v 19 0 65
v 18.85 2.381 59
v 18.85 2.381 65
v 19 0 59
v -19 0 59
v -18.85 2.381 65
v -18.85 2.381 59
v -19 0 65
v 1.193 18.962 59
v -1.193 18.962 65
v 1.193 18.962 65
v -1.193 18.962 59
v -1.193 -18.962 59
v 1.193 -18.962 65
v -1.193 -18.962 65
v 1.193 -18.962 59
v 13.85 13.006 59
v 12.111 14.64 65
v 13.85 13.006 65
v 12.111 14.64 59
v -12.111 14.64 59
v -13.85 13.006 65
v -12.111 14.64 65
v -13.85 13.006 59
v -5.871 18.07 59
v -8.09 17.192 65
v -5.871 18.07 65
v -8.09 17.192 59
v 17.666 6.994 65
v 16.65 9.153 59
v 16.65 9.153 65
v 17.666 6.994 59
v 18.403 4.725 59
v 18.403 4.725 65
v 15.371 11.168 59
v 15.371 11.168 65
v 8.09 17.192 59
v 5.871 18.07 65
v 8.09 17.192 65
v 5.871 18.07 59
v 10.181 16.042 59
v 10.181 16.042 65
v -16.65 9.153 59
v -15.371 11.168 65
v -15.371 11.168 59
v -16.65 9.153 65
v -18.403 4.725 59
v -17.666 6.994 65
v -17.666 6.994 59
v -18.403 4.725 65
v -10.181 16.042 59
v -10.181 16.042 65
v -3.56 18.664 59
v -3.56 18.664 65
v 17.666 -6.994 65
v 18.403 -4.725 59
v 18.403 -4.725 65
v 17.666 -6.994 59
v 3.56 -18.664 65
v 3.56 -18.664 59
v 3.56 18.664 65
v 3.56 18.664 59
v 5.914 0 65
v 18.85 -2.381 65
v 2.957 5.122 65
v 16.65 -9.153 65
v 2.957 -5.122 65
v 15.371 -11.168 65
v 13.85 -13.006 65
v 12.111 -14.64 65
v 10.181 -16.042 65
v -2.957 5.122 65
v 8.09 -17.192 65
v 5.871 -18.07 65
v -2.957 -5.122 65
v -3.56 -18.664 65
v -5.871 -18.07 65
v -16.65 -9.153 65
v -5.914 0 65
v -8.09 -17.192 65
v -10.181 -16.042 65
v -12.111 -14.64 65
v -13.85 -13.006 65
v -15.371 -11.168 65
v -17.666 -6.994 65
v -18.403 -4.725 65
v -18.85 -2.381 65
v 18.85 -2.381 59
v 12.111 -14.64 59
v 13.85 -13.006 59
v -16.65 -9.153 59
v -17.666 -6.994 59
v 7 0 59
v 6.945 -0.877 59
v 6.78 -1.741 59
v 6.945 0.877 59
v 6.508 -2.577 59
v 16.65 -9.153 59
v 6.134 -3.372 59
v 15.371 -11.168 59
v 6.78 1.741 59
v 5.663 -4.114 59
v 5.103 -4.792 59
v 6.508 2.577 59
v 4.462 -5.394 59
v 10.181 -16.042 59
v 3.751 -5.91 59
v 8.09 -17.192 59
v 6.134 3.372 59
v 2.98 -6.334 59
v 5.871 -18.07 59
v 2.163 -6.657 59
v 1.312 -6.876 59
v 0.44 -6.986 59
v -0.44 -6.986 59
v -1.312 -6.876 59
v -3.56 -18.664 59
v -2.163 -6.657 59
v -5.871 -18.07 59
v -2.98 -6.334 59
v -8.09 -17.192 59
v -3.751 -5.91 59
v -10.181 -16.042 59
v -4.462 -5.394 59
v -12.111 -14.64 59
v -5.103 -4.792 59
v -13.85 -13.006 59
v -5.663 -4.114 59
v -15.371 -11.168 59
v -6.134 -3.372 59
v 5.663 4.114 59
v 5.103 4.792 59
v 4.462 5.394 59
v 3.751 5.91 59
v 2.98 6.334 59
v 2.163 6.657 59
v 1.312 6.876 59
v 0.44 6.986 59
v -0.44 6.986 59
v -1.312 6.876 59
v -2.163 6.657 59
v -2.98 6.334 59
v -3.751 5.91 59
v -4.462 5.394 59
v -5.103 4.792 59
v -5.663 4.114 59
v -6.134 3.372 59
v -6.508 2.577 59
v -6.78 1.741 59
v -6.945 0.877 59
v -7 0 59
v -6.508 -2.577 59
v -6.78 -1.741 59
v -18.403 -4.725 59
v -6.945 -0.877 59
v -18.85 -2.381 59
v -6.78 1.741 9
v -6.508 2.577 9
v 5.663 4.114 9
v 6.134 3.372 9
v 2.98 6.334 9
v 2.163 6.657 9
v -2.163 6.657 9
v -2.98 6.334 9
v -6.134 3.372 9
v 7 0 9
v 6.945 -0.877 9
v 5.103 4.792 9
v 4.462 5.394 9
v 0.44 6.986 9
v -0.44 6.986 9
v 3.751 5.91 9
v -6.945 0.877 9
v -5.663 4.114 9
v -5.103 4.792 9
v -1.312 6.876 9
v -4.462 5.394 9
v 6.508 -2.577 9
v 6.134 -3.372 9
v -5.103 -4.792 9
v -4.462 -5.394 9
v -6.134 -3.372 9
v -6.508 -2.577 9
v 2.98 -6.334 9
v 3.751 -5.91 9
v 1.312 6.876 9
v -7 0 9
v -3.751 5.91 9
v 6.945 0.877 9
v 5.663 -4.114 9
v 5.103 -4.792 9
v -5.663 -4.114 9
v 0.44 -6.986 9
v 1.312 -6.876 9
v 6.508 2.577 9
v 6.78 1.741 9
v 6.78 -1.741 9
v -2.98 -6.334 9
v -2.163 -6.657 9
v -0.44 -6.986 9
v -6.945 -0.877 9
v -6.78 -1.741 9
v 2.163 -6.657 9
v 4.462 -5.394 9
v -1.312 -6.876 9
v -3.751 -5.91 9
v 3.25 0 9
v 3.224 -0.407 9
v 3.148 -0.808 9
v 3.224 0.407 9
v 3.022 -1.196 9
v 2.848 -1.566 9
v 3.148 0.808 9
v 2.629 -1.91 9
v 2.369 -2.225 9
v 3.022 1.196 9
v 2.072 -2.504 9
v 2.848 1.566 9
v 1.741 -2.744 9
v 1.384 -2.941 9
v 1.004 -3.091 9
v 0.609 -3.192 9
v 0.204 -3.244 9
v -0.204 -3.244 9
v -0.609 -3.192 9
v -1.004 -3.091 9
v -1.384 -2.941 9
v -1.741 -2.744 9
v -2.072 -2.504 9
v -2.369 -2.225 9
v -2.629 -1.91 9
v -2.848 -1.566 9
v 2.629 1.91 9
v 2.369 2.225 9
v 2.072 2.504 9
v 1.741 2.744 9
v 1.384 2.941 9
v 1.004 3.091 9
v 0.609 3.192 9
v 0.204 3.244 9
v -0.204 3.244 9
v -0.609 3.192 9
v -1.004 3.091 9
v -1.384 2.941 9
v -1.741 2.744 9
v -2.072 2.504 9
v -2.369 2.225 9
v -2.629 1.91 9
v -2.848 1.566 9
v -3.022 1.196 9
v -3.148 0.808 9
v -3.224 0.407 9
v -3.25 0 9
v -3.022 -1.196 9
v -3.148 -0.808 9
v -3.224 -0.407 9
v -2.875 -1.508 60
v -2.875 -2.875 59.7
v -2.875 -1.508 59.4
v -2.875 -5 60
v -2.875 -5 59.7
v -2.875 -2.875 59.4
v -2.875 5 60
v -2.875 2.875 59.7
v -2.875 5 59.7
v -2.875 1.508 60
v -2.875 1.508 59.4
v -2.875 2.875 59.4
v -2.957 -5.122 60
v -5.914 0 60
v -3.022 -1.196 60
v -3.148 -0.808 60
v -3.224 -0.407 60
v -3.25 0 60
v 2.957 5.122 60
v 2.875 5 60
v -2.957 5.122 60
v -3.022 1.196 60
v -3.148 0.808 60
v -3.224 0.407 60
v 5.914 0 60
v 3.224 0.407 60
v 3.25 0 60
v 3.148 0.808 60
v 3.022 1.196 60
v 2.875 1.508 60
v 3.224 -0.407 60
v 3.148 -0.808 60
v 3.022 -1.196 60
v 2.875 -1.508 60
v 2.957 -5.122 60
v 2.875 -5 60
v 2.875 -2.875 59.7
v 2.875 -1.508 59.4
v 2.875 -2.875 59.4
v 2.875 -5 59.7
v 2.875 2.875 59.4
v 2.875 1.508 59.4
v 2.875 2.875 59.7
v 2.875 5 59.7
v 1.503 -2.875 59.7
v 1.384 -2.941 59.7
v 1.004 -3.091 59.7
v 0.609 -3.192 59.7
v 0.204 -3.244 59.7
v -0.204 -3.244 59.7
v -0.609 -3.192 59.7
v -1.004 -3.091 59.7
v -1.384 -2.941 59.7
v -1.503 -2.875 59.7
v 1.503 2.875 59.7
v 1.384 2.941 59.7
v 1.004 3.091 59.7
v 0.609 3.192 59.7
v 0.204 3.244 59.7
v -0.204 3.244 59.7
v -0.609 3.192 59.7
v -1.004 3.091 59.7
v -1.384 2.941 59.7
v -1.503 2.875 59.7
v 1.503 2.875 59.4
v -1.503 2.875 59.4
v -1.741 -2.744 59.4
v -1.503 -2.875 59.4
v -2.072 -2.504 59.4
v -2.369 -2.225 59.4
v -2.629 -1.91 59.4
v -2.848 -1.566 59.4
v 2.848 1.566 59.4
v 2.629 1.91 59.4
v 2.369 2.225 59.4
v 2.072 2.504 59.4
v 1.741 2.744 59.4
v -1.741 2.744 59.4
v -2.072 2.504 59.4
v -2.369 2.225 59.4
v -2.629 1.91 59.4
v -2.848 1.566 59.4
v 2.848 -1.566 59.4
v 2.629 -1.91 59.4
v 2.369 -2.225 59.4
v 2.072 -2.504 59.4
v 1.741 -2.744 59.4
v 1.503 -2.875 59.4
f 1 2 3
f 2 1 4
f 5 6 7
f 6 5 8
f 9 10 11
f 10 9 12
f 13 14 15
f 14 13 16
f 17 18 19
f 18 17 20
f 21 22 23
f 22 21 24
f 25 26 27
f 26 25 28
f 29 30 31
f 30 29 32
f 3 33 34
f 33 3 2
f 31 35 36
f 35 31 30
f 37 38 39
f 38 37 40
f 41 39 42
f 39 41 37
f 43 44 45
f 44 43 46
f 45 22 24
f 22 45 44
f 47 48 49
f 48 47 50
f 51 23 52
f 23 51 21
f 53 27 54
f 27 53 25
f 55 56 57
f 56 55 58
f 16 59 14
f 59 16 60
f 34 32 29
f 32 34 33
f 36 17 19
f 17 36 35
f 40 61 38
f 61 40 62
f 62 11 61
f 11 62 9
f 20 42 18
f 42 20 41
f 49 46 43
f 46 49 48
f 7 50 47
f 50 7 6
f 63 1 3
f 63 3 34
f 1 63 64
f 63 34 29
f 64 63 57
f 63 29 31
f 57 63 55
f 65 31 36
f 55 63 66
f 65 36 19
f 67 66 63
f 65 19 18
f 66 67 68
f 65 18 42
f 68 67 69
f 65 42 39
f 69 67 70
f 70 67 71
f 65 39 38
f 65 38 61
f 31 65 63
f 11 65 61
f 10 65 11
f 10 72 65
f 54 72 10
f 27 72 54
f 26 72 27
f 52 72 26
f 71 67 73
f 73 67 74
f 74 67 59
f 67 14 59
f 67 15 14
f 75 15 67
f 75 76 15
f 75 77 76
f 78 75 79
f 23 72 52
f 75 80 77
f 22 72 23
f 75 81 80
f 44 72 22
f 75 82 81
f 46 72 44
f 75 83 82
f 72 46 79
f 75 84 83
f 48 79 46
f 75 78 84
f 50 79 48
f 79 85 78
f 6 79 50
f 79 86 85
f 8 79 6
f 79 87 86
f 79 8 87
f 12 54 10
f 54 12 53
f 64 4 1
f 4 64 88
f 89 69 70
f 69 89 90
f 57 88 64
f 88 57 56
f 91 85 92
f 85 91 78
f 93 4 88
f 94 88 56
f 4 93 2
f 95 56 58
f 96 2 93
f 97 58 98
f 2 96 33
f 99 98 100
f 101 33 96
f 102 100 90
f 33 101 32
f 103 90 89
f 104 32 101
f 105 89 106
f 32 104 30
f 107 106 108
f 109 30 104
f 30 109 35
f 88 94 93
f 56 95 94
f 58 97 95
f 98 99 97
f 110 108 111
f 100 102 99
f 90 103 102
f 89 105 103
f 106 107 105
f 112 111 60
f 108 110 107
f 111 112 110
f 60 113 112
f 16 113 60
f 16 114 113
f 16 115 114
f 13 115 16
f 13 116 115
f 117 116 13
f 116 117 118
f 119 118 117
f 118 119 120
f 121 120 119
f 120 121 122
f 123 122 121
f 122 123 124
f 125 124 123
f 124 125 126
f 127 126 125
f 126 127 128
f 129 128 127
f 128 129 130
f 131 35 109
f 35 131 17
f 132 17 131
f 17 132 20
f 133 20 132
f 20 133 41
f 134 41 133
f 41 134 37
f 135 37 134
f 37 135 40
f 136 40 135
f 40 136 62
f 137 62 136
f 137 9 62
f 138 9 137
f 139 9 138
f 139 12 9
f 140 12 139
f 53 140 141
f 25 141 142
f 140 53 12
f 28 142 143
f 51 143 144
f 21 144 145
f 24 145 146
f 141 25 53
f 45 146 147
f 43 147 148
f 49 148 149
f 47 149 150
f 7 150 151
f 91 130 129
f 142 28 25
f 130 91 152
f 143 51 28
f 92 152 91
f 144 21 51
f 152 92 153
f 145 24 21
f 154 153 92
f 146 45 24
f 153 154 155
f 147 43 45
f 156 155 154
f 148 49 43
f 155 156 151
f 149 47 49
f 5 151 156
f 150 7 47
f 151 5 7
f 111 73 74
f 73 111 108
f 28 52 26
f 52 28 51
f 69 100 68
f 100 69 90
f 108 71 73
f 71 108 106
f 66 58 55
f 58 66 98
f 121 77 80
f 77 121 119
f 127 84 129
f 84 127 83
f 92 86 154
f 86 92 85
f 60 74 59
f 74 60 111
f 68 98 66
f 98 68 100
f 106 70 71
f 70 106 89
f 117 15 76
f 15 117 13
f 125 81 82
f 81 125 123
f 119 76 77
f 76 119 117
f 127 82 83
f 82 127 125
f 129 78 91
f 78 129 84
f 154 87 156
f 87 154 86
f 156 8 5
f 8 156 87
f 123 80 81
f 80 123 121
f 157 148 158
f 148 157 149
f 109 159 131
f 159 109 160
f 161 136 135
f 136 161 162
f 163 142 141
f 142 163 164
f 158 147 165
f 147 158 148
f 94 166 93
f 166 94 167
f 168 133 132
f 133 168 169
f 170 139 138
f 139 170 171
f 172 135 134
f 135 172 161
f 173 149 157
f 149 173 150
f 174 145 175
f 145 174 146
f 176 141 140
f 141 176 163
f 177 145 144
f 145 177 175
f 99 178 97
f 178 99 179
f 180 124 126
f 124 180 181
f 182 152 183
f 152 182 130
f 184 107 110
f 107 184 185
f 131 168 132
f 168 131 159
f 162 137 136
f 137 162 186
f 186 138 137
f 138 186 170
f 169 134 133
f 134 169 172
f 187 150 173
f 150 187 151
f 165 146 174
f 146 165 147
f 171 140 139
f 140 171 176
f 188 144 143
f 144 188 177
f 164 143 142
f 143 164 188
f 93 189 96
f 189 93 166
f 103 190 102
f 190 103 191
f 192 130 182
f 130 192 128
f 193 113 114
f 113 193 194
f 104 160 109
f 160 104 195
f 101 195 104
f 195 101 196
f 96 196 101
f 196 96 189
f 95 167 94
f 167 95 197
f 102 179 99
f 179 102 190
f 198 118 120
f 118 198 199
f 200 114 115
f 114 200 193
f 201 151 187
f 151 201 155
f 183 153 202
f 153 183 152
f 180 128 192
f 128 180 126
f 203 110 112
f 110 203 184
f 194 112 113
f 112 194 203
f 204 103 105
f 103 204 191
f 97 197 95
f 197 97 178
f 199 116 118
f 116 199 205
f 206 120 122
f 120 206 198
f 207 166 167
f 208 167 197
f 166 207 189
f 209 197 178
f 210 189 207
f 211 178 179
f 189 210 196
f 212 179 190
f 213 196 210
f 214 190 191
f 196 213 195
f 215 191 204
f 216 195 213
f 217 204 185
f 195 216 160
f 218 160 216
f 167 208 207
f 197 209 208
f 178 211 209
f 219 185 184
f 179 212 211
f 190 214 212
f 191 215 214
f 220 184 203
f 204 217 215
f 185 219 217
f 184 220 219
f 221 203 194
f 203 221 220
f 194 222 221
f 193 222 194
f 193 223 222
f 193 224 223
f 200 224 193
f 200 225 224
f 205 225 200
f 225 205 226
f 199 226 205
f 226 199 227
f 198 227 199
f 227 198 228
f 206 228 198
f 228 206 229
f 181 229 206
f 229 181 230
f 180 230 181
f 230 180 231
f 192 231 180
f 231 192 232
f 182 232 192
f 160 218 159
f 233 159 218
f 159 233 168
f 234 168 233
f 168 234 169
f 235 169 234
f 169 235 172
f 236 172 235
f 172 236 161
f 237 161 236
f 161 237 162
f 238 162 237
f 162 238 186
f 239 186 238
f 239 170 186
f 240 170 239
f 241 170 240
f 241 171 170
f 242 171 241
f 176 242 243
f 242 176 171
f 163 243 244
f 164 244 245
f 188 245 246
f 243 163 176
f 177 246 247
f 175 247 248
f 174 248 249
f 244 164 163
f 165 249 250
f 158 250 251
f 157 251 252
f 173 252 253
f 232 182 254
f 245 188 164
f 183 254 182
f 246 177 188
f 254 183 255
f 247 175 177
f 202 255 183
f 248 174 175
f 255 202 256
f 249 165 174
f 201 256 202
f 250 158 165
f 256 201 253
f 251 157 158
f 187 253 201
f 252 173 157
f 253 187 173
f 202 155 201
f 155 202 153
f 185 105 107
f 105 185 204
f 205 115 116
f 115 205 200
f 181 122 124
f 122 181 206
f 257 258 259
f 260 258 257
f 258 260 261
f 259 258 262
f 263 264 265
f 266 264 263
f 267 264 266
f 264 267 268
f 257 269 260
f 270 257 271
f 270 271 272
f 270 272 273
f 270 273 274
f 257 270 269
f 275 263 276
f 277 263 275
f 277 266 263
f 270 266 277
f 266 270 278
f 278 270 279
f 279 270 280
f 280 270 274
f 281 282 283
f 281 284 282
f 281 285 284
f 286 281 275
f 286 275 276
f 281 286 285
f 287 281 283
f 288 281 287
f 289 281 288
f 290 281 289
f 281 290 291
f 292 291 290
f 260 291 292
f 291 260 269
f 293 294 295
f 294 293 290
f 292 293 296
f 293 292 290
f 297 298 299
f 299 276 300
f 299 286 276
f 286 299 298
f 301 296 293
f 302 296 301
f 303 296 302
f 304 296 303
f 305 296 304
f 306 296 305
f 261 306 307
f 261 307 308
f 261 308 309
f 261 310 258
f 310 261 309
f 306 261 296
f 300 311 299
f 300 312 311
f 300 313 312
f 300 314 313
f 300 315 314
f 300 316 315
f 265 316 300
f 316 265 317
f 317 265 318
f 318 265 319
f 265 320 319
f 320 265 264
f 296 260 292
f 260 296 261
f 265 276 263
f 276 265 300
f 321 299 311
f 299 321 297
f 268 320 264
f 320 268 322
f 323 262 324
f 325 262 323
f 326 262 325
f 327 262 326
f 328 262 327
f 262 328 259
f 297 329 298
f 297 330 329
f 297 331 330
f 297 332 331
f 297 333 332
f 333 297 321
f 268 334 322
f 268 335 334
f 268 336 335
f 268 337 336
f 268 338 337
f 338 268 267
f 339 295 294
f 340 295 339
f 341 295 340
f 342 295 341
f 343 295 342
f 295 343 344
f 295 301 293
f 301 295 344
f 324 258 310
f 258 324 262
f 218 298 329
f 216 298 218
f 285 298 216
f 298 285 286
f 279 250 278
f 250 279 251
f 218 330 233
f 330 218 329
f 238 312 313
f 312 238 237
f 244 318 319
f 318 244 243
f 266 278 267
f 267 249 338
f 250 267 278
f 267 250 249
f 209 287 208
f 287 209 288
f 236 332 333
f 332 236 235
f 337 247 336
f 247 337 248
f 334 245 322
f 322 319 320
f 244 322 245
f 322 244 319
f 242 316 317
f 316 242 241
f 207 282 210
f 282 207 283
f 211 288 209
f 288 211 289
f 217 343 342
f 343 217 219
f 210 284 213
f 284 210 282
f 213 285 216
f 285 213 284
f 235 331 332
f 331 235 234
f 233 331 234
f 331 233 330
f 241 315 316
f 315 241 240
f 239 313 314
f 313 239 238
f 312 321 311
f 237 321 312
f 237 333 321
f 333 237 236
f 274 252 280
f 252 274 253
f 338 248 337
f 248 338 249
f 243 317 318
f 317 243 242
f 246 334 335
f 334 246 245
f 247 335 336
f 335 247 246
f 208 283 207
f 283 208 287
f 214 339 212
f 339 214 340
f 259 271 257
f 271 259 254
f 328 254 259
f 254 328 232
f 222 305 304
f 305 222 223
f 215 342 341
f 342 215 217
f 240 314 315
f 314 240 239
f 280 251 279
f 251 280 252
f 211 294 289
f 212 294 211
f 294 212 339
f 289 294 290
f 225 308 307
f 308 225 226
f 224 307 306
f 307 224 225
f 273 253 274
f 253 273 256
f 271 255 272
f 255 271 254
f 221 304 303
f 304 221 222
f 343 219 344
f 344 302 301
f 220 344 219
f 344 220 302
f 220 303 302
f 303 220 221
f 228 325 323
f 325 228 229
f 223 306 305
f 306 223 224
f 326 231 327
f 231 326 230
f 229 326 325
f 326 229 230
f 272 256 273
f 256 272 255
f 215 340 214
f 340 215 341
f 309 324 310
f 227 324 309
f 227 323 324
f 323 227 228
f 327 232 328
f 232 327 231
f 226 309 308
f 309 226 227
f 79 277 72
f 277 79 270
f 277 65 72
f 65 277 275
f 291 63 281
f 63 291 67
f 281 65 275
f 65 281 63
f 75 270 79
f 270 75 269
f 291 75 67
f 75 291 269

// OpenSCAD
$fn = 50;


difference() {
	union() {
		translate(v = [0, 0, 59.0000000000]) {
			cylinder(h = 6, r = 19.0000000000);
		}
		translate(v = [0, 0, 9.0000000000]) {
			cylinder(h = 56, r = 7.0000000000);
		}
	}
	union() {
		translate(v = [0, 0, 65]) {
			rotate(a = [0, 0, 0]) {
				difference() {
					union() {
						#translate(v = [-2.8750000000, -5.0000000000, -5.3000000000]) {
							cube(size = [5.7500000000, 10, 0.3000000000]);
						}
						#translate(v = [-2.8750000000, -2.8750000000, -5.6000000000]) {
							cube(size = [5.7500000000, 5.7500000000, 0.3000000000]);
						}
						#translate(v = [-2.8750000000, -5.0000000000, 0]) {
							cube(size = [5.7500000000, 10, 0.3000000000]);
						}
						#translate(v = [-2.8750000000, -2.8750000000, 0.3000000000]) {
							cube(size = [5.7500000000, 5.7500000000, 0.3000000000]);
						}
						#translate(v = [0, 0, -100.0000000000]) {
							cylinder(h = 200, r = 3.2500000000);
						}
						translate(v = [0, 0, -5]) {
							#linear_extrude(height = 5) {
								polygon(points = [[5.9142500000, 0.0000000000], [2.9571250000, 5.1218907443], [-2.9571250000, 5.1218907443], [-5.9142500000, 0.0000000000], [-2.9571250000, -5.1218907443], [2.9571250000, -5.1218907443]]);
							}
						}
						#translate(v = [-2.8750000000, -5.0000000000, -5.3000000000]) {
							cube(size = [5.7500000000, 10, 0.3000000000]);
						}
						#translate(v = [-2.8750000000, -2.8750000000, -5.6000000000]) {
							cube(size = [5.7500000000, 5.7500000000, 0.3000000000]);
						}
						#translate(v = [-2.8750000000, -5.0000000000, 0]) {
							cube(size = [5.7500000000, 10, 0.3000000000]);
						}
						#translate(v = [-2.8750000000, -2.8750000000, 0.3000000000]) {
							cube(size = [5.7500000000, 5.7500000000, 0.3000000000]);
						}
						#translate(v = [0, 0, -100.0000000000]) {
							cylinder(h = 200, r = 3.2500000000);
						}
						#translate(v = [-2.8750000000, -5.0000000000, -5.3000000000]) {
							cube(size = [5.7500000000, 10, 0.3000000000]);
						}
						#translate(v = [-2.8750000000, -2.8750000000, -5.6000000000]) {
							cube(size = [5.7500000000, 5.7500000000, 0.3000000000]);
						}
						#translate(v = [-2.8750000000, -5.0000000000, 0]) {
							cube(size = [5.7500000000, 10, 0.3000000000]);
						}
						#translate(v = [-2.8750000000, -2.8750000000, 0.3000000000]) {
							cube(size = [5.7500000000, 5.7500000000, 0.3000000000]);
						}
						#translate(v = [0, 0, -100.0000000000]) {
							cylinder(h = 200, r = 3.2500000000);
						}
					}
					union();
				}
			}
		}
		#translate(v = [0, 0, -100.0000000000]) {
			cylinder(h = 200, r = 3.2500000000);
		}
	}
}
